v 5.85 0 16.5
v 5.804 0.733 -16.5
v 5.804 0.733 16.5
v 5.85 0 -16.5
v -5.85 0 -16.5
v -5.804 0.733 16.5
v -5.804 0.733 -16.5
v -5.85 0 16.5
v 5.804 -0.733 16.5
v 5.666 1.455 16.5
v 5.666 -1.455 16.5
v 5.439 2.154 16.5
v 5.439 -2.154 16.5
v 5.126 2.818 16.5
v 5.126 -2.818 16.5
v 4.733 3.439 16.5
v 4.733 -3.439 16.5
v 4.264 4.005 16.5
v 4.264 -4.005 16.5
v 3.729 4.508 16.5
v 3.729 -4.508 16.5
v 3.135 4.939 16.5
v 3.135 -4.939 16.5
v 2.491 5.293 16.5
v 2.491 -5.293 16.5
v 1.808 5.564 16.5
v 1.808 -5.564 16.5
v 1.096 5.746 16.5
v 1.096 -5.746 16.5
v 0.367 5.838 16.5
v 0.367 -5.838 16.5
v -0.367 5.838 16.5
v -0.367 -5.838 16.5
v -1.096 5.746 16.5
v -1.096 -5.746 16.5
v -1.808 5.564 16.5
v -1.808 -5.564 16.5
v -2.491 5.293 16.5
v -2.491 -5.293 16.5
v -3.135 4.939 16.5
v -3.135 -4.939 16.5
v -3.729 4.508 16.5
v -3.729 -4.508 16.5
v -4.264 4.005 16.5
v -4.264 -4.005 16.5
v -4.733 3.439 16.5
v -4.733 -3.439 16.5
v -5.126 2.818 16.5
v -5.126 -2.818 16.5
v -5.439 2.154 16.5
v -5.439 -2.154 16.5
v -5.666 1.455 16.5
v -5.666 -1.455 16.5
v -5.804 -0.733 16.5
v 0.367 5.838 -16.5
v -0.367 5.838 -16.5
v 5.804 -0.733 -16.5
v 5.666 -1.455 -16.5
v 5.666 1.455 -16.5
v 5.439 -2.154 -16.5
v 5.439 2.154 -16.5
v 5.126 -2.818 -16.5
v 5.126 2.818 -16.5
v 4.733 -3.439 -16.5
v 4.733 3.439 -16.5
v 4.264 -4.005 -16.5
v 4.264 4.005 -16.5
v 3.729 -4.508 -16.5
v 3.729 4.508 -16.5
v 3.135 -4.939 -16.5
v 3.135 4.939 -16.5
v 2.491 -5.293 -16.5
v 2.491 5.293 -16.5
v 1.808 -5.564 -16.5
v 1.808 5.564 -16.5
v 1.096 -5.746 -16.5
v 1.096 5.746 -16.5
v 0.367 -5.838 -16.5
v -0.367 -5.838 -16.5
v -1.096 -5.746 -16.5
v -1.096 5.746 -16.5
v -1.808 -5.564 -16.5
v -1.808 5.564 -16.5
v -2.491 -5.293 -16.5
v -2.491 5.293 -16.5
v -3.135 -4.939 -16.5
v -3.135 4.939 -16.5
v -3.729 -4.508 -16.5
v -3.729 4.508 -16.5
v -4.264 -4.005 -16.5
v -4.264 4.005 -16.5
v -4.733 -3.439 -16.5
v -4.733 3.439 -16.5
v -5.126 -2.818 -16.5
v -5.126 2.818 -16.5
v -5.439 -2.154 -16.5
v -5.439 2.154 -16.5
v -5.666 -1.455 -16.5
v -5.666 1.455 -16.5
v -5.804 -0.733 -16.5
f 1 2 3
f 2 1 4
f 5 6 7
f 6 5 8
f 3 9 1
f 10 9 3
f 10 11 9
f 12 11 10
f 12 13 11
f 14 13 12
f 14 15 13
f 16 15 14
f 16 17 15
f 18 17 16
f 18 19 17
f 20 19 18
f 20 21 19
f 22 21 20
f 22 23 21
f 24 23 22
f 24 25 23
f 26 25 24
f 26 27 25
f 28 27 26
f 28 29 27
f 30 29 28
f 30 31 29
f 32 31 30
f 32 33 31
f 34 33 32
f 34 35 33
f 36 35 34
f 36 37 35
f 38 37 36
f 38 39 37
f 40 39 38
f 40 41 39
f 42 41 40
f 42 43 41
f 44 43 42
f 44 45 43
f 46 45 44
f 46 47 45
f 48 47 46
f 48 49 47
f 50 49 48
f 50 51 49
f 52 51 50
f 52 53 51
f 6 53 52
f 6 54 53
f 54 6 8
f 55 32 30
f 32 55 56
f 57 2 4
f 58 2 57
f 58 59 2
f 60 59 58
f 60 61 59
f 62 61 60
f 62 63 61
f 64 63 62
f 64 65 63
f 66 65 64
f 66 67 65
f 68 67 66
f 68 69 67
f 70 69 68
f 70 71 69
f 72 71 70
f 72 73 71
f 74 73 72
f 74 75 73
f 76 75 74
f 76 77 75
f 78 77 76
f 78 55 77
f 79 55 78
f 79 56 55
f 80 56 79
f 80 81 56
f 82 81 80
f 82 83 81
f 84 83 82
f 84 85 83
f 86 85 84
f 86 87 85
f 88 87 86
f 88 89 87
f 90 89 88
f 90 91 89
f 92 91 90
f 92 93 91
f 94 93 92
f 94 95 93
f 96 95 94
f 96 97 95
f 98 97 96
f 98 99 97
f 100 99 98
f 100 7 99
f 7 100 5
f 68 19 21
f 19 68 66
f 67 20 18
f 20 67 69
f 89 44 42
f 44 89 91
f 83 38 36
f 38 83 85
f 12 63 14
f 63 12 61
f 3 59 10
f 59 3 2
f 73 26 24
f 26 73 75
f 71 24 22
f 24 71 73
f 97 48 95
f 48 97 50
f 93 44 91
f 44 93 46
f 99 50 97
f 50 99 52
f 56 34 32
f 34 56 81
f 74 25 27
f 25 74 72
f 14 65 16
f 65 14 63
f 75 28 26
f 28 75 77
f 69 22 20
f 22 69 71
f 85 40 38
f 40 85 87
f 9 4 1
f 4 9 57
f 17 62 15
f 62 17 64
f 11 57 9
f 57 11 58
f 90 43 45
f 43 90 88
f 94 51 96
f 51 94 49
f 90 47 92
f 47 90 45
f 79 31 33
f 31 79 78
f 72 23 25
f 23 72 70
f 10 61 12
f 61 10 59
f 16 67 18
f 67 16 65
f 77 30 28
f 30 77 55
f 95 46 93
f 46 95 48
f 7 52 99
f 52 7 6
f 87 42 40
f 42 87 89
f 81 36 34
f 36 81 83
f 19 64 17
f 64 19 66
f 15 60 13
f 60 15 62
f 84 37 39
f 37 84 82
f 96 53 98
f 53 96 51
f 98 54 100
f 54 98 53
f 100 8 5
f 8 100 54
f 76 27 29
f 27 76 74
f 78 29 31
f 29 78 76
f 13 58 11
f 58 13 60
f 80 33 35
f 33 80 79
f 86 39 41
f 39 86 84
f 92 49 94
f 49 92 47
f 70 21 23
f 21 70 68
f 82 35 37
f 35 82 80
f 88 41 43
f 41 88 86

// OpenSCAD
$fn = 50;


difference() {
	union() {
		translate(v = [0, 0, -16.5000000000]) {
			cylinder(h = 33, r = 5.8500000000);
		}
	}
	union() {
		translate(v = [0, 0, -100.0000000000]) {
			cylinder(h = 200, r = 0);
		}
	}
}
